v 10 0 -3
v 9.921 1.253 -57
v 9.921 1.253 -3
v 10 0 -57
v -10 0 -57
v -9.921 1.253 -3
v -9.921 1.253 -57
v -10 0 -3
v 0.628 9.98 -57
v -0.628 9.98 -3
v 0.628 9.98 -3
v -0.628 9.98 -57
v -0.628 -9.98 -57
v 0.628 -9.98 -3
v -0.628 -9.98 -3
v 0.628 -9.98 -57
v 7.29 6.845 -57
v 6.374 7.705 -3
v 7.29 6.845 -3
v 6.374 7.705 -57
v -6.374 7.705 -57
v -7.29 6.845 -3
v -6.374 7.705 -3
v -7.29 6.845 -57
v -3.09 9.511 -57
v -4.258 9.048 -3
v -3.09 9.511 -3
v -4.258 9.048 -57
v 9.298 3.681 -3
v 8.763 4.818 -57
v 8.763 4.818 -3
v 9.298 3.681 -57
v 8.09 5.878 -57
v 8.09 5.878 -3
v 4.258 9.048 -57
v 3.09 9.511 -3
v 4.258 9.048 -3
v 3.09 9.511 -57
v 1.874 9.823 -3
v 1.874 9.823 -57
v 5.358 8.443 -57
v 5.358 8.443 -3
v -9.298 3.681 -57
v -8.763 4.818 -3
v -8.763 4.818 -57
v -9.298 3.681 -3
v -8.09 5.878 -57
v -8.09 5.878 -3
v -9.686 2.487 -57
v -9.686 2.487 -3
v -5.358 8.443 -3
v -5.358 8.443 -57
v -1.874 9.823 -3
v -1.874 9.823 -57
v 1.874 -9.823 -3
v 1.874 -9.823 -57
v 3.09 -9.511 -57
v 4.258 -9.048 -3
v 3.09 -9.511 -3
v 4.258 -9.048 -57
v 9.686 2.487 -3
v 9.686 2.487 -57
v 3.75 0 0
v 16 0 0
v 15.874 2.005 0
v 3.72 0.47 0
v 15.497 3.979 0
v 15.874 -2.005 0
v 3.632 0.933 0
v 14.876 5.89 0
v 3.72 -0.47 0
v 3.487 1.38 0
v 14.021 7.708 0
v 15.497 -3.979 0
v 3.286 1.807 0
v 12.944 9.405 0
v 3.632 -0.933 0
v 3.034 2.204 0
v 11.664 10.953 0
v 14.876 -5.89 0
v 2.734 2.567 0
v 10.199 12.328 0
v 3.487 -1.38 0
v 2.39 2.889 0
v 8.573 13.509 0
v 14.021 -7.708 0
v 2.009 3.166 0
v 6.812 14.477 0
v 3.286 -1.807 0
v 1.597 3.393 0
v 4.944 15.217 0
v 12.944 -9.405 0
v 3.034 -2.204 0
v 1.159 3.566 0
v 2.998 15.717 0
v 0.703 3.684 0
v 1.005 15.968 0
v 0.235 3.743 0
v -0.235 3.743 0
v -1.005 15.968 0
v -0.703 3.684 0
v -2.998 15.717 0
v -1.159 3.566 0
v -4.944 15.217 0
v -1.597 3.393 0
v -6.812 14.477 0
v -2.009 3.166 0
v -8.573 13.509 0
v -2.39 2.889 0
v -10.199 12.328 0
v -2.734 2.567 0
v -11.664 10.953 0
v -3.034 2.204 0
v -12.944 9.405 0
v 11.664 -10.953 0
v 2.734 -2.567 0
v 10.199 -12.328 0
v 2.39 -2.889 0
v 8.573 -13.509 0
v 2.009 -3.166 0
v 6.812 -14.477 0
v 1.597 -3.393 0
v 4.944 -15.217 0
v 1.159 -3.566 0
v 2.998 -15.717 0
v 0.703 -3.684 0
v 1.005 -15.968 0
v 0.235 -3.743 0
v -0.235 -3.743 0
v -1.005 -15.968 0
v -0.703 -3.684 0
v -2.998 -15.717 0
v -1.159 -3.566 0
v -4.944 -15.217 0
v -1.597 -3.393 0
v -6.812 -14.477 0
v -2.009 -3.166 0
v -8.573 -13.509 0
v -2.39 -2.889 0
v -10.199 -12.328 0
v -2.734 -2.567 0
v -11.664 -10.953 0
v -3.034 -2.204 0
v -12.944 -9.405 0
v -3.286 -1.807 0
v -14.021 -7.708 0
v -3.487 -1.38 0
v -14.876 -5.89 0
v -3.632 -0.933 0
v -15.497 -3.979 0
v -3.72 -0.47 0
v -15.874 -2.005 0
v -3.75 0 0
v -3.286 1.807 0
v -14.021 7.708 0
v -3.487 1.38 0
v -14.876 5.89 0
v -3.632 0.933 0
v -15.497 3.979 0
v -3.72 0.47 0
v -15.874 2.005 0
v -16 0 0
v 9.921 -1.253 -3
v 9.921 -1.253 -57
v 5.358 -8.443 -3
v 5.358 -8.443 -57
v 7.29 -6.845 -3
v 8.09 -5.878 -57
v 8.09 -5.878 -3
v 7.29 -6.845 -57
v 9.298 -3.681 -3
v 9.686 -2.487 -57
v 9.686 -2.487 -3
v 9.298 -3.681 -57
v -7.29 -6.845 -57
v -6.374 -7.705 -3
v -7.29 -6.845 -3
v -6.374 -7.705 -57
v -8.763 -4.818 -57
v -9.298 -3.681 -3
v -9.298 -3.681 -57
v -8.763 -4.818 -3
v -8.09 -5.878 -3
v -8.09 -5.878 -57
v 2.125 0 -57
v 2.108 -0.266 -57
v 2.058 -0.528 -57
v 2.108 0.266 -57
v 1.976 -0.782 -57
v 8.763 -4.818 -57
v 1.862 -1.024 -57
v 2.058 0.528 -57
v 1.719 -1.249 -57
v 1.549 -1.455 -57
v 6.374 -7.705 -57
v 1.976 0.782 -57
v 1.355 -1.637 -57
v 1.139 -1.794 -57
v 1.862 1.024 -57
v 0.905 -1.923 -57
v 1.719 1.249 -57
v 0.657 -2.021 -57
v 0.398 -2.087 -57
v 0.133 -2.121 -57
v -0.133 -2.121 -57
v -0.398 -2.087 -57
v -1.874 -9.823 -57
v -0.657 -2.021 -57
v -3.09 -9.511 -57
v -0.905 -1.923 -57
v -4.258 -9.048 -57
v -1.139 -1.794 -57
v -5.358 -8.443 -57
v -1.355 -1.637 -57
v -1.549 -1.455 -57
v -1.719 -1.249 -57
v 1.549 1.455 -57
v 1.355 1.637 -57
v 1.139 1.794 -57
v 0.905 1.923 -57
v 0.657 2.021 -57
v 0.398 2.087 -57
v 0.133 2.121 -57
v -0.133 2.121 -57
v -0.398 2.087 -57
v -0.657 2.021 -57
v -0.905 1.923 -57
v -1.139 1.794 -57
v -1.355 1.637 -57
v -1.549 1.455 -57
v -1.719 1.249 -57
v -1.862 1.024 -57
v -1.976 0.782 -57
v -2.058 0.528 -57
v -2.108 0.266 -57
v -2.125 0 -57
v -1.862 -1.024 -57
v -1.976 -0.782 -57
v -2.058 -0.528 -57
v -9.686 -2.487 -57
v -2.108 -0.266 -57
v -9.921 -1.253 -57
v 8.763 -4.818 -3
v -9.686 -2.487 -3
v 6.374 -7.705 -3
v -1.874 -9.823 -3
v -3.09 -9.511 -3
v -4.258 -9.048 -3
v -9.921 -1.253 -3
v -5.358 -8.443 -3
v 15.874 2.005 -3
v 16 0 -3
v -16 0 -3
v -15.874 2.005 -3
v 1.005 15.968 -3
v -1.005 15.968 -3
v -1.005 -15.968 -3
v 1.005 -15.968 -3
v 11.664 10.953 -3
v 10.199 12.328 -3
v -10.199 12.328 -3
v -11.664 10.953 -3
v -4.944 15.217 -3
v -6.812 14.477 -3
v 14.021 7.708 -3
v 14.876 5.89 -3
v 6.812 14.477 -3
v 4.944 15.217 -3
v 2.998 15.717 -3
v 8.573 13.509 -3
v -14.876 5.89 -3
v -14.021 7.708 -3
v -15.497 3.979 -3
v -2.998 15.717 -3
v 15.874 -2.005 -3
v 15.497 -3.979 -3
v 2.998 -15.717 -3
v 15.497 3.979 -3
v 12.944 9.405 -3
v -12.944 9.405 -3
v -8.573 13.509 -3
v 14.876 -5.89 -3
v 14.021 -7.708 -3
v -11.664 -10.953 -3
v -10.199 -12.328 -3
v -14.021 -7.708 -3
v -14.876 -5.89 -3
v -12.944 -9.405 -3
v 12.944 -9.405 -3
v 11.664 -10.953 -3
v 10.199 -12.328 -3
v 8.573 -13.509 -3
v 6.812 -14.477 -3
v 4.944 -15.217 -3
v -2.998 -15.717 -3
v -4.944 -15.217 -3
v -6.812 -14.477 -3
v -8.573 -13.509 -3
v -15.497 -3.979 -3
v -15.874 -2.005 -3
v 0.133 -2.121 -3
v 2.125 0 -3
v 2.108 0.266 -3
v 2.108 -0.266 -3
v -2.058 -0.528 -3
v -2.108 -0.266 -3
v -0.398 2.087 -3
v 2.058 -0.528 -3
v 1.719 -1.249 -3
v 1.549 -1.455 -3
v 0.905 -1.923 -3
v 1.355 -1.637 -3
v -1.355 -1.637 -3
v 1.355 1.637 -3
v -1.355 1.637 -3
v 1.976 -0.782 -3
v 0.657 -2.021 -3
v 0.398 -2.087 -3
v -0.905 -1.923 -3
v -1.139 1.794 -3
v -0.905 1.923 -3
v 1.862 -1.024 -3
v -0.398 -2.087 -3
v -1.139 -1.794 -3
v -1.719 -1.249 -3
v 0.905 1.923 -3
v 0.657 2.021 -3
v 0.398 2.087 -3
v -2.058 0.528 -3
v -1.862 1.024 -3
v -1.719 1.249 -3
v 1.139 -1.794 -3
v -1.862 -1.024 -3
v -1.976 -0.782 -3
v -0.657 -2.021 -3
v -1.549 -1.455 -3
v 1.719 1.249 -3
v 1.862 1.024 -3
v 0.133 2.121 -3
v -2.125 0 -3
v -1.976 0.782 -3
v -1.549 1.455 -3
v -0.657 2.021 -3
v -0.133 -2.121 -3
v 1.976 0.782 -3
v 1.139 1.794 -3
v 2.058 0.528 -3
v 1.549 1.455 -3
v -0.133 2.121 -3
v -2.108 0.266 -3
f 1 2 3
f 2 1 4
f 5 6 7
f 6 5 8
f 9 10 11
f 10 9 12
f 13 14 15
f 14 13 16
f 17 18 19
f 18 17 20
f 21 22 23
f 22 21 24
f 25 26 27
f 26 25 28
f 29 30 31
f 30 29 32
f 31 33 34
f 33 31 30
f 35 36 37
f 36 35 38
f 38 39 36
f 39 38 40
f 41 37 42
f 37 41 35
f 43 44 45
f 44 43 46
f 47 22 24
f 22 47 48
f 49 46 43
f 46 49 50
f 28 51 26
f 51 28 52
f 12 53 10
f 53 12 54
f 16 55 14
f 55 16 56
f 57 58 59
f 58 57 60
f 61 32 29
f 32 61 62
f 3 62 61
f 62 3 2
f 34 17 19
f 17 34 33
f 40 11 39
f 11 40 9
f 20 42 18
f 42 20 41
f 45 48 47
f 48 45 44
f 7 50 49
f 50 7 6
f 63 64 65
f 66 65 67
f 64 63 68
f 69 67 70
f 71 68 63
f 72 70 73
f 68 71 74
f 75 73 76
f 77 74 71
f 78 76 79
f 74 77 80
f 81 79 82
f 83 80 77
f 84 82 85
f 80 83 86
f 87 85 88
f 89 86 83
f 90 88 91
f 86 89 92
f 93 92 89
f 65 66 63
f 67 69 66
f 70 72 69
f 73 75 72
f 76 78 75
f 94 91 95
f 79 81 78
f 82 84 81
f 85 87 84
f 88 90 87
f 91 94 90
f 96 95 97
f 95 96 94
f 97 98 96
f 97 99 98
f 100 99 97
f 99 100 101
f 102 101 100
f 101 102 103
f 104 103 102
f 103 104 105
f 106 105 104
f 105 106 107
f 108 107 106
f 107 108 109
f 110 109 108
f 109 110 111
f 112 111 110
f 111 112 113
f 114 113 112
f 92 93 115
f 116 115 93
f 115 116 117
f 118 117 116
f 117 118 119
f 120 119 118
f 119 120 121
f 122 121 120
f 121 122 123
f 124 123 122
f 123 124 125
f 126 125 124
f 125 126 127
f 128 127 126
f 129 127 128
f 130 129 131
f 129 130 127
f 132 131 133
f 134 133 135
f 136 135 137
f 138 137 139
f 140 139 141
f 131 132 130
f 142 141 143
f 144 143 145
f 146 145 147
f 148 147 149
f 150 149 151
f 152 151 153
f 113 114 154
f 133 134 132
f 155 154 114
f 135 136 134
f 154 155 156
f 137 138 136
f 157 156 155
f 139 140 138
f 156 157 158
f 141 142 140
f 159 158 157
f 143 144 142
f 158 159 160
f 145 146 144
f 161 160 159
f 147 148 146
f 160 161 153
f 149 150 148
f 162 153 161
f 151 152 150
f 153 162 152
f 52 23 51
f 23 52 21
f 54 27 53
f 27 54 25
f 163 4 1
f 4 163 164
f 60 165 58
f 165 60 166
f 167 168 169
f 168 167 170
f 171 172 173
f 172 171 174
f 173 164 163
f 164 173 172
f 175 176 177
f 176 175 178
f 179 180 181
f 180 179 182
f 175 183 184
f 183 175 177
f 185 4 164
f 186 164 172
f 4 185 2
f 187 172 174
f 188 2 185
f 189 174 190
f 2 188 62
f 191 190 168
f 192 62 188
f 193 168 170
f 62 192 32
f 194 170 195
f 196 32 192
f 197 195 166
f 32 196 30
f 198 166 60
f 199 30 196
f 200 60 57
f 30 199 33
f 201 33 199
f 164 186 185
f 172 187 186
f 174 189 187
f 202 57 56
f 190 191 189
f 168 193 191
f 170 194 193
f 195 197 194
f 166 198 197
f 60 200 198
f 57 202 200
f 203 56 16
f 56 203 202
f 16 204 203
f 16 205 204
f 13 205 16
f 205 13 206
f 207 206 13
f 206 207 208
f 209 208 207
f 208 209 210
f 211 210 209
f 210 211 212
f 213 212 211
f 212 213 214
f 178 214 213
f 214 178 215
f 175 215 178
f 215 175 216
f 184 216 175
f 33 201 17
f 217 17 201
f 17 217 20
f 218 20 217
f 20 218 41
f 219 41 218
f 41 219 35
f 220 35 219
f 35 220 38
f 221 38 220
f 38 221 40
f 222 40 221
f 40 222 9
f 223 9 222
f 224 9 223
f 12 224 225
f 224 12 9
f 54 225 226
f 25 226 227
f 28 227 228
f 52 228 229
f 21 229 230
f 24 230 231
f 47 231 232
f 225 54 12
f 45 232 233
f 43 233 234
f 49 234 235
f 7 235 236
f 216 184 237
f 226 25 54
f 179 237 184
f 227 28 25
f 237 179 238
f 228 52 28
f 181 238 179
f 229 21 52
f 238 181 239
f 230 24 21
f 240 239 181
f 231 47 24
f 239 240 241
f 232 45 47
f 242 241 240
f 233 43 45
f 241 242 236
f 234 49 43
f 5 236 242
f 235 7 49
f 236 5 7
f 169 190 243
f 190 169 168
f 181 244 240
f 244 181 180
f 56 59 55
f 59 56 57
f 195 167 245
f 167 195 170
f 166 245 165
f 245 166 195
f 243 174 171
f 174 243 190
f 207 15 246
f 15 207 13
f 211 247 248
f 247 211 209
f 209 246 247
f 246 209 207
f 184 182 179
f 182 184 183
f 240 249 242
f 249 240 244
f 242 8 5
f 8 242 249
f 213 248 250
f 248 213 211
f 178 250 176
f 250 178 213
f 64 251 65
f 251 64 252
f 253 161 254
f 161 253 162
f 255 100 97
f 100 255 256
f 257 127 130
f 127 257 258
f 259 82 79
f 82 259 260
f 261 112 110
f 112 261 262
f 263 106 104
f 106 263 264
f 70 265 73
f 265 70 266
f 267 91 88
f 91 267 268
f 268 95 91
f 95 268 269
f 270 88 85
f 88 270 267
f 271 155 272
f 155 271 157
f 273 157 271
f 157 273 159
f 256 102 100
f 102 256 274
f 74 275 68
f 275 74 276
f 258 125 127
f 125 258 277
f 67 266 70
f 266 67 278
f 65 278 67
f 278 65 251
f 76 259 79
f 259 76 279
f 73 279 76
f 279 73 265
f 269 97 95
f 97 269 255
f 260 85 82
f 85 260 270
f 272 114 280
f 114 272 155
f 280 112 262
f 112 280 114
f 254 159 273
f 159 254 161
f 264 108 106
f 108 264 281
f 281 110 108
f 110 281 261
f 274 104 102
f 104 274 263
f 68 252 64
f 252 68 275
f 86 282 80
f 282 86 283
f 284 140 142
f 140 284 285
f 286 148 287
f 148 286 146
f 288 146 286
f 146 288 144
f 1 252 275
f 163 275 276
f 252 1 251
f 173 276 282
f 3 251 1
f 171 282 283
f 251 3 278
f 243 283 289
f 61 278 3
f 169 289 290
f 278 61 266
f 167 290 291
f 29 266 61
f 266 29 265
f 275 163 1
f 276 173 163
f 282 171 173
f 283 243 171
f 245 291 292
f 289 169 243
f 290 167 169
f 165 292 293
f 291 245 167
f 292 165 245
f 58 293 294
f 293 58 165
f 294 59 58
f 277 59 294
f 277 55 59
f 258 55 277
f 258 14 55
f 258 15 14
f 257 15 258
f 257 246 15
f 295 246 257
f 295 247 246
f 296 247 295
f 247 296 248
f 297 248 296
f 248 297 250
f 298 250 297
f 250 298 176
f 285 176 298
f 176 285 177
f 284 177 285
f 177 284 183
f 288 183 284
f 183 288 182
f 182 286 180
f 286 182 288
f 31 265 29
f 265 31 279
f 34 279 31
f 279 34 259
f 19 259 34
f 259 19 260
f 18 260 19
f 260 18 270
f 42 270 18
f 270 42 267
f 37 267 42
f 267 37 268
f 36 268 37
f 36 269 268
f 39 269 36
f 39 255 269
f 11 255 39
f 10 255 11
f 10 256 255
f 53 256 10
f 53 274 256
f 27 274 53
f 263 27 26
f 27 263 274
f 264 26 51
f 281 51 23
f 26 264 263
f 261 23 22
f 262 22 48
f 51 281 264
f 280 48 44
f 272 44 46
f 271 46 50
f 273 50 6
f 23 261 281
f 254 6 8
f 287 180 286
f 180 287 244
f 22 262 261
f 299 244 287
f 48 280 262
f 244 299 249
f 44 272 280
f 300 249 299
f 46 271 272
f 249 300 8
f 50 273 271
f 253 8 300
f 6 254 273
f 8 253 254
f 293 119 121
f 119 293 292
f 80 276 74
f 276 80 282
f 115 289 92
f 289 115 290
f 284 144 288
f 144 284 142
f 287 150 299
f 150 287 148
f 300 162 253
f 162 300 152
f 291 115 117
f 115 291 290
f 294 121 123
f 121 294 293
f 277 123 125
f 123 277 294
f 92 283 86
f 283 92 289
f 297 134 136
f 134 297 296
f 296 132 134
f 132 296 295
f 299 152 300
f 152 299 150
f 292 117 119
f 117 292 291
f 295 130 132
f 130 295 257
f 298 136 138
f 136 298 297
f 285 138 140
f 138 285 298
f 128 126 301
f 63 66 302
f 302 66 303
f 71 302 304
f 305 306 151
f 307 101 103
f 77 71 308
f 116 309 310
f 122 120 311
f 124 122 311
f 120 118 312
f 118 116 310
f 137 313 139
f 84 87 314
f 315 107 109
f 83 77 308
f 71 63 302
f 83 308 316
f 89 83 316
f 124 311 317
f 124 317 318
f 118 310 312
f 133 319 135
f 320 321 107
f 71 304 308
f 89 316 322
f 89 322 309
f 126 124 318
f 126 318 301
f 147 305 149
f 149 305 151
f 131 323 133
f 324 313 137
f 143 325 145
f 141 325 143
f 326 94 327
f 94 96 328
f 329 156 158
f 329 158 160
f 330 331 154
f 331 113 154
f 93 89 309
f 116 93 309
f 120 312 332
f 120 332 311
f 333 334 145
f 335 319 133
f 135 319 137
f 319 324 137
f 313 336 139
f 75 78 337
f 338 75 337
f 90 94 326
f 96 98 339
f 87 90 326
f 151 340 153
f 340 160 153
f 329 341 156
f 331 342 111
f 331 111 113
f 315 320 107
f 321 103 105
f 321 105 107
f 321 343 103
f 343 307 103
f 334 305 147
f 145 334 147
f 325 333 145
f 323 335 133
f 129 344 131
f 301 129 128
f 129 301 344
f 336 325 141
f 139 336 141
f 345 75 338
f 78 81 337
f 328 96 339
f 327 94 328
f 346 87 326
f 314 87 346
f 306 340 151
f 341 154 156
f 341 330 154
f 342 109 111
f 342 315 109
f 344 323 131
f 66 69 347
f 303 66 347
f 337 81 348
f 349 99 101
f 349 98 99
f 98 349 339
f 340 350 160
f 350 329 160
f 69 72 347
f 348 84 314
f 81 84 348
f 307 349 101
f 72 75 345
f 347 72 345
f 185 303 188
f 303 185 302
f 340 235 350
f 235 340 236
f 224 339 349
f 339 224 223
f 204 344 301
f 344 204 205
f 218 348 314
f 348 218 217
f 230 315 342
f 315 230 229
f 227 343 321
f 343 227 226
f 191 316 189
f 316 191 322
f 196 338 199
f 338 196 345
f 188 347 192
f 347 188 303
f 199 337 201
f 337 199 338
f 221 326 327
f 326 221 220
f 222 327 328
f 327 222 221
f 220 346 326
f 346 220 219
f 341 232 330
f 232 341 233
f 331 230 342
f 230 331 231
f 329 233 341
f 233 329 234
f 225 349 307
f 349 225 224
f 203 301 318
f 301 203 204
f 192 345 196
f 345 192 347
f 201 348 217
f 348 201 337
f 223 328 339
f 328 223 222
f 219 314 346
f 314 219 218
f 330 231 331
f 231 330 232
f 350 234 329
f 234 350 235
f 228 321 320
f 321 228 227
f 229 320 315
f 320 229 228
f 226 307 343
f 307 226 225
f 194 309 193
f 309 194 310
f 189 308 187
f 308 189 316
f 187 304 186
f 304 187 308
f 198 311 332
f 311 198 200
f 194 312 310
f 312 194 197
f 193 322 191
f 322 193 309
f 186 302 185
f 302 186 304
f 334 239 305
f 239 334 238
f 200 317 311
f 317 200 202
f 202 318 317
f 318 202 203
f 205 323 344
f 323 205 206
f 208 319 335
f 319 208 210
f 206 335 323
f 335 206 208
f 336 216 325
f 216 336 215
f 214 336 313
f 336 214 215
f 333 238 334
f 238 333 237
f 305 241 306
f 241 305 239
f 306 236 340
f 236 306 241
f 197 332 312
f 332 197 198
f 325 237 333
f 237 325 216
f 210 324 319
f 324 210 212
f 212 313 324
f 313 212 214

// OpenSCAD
$fn = 50;


difference() {
	union() {
		translate(v = [0, 0, -57.0000000000]) {
			cylinder(h = 57, r = 10.0000000000);
		}
		translate(v = [0, 0, -3.0000000000]) {
			cylinder(h = 3, r = 16.0000000000);
		}
	}
	union() {
		translate(v = [0, 0, 0]) {
			rotate(a = [0, 0, 0]) {
				difference() {
					union() {
						#translate(v = [0, 0, -57.0000000000]) {
							cylinder(h = 57, r = 2.0000000000);
						}
						#translate(v = [0, 0, -3]) {
							cylinder(h = 3, r1 = 2.1250000000, r2 = 3.7500000000);
						}
						#translate(v = [0, 0, -57.0000000000]) {
							cylinder(h = 57, r = 2.1250000000);
						}
						#translate(v = [0, 0, -57.0000000000]) {
							cylinder(h = 57, r = 2.0000000000);
						}
					}
					union();
				}
			}
		}
	}
}
